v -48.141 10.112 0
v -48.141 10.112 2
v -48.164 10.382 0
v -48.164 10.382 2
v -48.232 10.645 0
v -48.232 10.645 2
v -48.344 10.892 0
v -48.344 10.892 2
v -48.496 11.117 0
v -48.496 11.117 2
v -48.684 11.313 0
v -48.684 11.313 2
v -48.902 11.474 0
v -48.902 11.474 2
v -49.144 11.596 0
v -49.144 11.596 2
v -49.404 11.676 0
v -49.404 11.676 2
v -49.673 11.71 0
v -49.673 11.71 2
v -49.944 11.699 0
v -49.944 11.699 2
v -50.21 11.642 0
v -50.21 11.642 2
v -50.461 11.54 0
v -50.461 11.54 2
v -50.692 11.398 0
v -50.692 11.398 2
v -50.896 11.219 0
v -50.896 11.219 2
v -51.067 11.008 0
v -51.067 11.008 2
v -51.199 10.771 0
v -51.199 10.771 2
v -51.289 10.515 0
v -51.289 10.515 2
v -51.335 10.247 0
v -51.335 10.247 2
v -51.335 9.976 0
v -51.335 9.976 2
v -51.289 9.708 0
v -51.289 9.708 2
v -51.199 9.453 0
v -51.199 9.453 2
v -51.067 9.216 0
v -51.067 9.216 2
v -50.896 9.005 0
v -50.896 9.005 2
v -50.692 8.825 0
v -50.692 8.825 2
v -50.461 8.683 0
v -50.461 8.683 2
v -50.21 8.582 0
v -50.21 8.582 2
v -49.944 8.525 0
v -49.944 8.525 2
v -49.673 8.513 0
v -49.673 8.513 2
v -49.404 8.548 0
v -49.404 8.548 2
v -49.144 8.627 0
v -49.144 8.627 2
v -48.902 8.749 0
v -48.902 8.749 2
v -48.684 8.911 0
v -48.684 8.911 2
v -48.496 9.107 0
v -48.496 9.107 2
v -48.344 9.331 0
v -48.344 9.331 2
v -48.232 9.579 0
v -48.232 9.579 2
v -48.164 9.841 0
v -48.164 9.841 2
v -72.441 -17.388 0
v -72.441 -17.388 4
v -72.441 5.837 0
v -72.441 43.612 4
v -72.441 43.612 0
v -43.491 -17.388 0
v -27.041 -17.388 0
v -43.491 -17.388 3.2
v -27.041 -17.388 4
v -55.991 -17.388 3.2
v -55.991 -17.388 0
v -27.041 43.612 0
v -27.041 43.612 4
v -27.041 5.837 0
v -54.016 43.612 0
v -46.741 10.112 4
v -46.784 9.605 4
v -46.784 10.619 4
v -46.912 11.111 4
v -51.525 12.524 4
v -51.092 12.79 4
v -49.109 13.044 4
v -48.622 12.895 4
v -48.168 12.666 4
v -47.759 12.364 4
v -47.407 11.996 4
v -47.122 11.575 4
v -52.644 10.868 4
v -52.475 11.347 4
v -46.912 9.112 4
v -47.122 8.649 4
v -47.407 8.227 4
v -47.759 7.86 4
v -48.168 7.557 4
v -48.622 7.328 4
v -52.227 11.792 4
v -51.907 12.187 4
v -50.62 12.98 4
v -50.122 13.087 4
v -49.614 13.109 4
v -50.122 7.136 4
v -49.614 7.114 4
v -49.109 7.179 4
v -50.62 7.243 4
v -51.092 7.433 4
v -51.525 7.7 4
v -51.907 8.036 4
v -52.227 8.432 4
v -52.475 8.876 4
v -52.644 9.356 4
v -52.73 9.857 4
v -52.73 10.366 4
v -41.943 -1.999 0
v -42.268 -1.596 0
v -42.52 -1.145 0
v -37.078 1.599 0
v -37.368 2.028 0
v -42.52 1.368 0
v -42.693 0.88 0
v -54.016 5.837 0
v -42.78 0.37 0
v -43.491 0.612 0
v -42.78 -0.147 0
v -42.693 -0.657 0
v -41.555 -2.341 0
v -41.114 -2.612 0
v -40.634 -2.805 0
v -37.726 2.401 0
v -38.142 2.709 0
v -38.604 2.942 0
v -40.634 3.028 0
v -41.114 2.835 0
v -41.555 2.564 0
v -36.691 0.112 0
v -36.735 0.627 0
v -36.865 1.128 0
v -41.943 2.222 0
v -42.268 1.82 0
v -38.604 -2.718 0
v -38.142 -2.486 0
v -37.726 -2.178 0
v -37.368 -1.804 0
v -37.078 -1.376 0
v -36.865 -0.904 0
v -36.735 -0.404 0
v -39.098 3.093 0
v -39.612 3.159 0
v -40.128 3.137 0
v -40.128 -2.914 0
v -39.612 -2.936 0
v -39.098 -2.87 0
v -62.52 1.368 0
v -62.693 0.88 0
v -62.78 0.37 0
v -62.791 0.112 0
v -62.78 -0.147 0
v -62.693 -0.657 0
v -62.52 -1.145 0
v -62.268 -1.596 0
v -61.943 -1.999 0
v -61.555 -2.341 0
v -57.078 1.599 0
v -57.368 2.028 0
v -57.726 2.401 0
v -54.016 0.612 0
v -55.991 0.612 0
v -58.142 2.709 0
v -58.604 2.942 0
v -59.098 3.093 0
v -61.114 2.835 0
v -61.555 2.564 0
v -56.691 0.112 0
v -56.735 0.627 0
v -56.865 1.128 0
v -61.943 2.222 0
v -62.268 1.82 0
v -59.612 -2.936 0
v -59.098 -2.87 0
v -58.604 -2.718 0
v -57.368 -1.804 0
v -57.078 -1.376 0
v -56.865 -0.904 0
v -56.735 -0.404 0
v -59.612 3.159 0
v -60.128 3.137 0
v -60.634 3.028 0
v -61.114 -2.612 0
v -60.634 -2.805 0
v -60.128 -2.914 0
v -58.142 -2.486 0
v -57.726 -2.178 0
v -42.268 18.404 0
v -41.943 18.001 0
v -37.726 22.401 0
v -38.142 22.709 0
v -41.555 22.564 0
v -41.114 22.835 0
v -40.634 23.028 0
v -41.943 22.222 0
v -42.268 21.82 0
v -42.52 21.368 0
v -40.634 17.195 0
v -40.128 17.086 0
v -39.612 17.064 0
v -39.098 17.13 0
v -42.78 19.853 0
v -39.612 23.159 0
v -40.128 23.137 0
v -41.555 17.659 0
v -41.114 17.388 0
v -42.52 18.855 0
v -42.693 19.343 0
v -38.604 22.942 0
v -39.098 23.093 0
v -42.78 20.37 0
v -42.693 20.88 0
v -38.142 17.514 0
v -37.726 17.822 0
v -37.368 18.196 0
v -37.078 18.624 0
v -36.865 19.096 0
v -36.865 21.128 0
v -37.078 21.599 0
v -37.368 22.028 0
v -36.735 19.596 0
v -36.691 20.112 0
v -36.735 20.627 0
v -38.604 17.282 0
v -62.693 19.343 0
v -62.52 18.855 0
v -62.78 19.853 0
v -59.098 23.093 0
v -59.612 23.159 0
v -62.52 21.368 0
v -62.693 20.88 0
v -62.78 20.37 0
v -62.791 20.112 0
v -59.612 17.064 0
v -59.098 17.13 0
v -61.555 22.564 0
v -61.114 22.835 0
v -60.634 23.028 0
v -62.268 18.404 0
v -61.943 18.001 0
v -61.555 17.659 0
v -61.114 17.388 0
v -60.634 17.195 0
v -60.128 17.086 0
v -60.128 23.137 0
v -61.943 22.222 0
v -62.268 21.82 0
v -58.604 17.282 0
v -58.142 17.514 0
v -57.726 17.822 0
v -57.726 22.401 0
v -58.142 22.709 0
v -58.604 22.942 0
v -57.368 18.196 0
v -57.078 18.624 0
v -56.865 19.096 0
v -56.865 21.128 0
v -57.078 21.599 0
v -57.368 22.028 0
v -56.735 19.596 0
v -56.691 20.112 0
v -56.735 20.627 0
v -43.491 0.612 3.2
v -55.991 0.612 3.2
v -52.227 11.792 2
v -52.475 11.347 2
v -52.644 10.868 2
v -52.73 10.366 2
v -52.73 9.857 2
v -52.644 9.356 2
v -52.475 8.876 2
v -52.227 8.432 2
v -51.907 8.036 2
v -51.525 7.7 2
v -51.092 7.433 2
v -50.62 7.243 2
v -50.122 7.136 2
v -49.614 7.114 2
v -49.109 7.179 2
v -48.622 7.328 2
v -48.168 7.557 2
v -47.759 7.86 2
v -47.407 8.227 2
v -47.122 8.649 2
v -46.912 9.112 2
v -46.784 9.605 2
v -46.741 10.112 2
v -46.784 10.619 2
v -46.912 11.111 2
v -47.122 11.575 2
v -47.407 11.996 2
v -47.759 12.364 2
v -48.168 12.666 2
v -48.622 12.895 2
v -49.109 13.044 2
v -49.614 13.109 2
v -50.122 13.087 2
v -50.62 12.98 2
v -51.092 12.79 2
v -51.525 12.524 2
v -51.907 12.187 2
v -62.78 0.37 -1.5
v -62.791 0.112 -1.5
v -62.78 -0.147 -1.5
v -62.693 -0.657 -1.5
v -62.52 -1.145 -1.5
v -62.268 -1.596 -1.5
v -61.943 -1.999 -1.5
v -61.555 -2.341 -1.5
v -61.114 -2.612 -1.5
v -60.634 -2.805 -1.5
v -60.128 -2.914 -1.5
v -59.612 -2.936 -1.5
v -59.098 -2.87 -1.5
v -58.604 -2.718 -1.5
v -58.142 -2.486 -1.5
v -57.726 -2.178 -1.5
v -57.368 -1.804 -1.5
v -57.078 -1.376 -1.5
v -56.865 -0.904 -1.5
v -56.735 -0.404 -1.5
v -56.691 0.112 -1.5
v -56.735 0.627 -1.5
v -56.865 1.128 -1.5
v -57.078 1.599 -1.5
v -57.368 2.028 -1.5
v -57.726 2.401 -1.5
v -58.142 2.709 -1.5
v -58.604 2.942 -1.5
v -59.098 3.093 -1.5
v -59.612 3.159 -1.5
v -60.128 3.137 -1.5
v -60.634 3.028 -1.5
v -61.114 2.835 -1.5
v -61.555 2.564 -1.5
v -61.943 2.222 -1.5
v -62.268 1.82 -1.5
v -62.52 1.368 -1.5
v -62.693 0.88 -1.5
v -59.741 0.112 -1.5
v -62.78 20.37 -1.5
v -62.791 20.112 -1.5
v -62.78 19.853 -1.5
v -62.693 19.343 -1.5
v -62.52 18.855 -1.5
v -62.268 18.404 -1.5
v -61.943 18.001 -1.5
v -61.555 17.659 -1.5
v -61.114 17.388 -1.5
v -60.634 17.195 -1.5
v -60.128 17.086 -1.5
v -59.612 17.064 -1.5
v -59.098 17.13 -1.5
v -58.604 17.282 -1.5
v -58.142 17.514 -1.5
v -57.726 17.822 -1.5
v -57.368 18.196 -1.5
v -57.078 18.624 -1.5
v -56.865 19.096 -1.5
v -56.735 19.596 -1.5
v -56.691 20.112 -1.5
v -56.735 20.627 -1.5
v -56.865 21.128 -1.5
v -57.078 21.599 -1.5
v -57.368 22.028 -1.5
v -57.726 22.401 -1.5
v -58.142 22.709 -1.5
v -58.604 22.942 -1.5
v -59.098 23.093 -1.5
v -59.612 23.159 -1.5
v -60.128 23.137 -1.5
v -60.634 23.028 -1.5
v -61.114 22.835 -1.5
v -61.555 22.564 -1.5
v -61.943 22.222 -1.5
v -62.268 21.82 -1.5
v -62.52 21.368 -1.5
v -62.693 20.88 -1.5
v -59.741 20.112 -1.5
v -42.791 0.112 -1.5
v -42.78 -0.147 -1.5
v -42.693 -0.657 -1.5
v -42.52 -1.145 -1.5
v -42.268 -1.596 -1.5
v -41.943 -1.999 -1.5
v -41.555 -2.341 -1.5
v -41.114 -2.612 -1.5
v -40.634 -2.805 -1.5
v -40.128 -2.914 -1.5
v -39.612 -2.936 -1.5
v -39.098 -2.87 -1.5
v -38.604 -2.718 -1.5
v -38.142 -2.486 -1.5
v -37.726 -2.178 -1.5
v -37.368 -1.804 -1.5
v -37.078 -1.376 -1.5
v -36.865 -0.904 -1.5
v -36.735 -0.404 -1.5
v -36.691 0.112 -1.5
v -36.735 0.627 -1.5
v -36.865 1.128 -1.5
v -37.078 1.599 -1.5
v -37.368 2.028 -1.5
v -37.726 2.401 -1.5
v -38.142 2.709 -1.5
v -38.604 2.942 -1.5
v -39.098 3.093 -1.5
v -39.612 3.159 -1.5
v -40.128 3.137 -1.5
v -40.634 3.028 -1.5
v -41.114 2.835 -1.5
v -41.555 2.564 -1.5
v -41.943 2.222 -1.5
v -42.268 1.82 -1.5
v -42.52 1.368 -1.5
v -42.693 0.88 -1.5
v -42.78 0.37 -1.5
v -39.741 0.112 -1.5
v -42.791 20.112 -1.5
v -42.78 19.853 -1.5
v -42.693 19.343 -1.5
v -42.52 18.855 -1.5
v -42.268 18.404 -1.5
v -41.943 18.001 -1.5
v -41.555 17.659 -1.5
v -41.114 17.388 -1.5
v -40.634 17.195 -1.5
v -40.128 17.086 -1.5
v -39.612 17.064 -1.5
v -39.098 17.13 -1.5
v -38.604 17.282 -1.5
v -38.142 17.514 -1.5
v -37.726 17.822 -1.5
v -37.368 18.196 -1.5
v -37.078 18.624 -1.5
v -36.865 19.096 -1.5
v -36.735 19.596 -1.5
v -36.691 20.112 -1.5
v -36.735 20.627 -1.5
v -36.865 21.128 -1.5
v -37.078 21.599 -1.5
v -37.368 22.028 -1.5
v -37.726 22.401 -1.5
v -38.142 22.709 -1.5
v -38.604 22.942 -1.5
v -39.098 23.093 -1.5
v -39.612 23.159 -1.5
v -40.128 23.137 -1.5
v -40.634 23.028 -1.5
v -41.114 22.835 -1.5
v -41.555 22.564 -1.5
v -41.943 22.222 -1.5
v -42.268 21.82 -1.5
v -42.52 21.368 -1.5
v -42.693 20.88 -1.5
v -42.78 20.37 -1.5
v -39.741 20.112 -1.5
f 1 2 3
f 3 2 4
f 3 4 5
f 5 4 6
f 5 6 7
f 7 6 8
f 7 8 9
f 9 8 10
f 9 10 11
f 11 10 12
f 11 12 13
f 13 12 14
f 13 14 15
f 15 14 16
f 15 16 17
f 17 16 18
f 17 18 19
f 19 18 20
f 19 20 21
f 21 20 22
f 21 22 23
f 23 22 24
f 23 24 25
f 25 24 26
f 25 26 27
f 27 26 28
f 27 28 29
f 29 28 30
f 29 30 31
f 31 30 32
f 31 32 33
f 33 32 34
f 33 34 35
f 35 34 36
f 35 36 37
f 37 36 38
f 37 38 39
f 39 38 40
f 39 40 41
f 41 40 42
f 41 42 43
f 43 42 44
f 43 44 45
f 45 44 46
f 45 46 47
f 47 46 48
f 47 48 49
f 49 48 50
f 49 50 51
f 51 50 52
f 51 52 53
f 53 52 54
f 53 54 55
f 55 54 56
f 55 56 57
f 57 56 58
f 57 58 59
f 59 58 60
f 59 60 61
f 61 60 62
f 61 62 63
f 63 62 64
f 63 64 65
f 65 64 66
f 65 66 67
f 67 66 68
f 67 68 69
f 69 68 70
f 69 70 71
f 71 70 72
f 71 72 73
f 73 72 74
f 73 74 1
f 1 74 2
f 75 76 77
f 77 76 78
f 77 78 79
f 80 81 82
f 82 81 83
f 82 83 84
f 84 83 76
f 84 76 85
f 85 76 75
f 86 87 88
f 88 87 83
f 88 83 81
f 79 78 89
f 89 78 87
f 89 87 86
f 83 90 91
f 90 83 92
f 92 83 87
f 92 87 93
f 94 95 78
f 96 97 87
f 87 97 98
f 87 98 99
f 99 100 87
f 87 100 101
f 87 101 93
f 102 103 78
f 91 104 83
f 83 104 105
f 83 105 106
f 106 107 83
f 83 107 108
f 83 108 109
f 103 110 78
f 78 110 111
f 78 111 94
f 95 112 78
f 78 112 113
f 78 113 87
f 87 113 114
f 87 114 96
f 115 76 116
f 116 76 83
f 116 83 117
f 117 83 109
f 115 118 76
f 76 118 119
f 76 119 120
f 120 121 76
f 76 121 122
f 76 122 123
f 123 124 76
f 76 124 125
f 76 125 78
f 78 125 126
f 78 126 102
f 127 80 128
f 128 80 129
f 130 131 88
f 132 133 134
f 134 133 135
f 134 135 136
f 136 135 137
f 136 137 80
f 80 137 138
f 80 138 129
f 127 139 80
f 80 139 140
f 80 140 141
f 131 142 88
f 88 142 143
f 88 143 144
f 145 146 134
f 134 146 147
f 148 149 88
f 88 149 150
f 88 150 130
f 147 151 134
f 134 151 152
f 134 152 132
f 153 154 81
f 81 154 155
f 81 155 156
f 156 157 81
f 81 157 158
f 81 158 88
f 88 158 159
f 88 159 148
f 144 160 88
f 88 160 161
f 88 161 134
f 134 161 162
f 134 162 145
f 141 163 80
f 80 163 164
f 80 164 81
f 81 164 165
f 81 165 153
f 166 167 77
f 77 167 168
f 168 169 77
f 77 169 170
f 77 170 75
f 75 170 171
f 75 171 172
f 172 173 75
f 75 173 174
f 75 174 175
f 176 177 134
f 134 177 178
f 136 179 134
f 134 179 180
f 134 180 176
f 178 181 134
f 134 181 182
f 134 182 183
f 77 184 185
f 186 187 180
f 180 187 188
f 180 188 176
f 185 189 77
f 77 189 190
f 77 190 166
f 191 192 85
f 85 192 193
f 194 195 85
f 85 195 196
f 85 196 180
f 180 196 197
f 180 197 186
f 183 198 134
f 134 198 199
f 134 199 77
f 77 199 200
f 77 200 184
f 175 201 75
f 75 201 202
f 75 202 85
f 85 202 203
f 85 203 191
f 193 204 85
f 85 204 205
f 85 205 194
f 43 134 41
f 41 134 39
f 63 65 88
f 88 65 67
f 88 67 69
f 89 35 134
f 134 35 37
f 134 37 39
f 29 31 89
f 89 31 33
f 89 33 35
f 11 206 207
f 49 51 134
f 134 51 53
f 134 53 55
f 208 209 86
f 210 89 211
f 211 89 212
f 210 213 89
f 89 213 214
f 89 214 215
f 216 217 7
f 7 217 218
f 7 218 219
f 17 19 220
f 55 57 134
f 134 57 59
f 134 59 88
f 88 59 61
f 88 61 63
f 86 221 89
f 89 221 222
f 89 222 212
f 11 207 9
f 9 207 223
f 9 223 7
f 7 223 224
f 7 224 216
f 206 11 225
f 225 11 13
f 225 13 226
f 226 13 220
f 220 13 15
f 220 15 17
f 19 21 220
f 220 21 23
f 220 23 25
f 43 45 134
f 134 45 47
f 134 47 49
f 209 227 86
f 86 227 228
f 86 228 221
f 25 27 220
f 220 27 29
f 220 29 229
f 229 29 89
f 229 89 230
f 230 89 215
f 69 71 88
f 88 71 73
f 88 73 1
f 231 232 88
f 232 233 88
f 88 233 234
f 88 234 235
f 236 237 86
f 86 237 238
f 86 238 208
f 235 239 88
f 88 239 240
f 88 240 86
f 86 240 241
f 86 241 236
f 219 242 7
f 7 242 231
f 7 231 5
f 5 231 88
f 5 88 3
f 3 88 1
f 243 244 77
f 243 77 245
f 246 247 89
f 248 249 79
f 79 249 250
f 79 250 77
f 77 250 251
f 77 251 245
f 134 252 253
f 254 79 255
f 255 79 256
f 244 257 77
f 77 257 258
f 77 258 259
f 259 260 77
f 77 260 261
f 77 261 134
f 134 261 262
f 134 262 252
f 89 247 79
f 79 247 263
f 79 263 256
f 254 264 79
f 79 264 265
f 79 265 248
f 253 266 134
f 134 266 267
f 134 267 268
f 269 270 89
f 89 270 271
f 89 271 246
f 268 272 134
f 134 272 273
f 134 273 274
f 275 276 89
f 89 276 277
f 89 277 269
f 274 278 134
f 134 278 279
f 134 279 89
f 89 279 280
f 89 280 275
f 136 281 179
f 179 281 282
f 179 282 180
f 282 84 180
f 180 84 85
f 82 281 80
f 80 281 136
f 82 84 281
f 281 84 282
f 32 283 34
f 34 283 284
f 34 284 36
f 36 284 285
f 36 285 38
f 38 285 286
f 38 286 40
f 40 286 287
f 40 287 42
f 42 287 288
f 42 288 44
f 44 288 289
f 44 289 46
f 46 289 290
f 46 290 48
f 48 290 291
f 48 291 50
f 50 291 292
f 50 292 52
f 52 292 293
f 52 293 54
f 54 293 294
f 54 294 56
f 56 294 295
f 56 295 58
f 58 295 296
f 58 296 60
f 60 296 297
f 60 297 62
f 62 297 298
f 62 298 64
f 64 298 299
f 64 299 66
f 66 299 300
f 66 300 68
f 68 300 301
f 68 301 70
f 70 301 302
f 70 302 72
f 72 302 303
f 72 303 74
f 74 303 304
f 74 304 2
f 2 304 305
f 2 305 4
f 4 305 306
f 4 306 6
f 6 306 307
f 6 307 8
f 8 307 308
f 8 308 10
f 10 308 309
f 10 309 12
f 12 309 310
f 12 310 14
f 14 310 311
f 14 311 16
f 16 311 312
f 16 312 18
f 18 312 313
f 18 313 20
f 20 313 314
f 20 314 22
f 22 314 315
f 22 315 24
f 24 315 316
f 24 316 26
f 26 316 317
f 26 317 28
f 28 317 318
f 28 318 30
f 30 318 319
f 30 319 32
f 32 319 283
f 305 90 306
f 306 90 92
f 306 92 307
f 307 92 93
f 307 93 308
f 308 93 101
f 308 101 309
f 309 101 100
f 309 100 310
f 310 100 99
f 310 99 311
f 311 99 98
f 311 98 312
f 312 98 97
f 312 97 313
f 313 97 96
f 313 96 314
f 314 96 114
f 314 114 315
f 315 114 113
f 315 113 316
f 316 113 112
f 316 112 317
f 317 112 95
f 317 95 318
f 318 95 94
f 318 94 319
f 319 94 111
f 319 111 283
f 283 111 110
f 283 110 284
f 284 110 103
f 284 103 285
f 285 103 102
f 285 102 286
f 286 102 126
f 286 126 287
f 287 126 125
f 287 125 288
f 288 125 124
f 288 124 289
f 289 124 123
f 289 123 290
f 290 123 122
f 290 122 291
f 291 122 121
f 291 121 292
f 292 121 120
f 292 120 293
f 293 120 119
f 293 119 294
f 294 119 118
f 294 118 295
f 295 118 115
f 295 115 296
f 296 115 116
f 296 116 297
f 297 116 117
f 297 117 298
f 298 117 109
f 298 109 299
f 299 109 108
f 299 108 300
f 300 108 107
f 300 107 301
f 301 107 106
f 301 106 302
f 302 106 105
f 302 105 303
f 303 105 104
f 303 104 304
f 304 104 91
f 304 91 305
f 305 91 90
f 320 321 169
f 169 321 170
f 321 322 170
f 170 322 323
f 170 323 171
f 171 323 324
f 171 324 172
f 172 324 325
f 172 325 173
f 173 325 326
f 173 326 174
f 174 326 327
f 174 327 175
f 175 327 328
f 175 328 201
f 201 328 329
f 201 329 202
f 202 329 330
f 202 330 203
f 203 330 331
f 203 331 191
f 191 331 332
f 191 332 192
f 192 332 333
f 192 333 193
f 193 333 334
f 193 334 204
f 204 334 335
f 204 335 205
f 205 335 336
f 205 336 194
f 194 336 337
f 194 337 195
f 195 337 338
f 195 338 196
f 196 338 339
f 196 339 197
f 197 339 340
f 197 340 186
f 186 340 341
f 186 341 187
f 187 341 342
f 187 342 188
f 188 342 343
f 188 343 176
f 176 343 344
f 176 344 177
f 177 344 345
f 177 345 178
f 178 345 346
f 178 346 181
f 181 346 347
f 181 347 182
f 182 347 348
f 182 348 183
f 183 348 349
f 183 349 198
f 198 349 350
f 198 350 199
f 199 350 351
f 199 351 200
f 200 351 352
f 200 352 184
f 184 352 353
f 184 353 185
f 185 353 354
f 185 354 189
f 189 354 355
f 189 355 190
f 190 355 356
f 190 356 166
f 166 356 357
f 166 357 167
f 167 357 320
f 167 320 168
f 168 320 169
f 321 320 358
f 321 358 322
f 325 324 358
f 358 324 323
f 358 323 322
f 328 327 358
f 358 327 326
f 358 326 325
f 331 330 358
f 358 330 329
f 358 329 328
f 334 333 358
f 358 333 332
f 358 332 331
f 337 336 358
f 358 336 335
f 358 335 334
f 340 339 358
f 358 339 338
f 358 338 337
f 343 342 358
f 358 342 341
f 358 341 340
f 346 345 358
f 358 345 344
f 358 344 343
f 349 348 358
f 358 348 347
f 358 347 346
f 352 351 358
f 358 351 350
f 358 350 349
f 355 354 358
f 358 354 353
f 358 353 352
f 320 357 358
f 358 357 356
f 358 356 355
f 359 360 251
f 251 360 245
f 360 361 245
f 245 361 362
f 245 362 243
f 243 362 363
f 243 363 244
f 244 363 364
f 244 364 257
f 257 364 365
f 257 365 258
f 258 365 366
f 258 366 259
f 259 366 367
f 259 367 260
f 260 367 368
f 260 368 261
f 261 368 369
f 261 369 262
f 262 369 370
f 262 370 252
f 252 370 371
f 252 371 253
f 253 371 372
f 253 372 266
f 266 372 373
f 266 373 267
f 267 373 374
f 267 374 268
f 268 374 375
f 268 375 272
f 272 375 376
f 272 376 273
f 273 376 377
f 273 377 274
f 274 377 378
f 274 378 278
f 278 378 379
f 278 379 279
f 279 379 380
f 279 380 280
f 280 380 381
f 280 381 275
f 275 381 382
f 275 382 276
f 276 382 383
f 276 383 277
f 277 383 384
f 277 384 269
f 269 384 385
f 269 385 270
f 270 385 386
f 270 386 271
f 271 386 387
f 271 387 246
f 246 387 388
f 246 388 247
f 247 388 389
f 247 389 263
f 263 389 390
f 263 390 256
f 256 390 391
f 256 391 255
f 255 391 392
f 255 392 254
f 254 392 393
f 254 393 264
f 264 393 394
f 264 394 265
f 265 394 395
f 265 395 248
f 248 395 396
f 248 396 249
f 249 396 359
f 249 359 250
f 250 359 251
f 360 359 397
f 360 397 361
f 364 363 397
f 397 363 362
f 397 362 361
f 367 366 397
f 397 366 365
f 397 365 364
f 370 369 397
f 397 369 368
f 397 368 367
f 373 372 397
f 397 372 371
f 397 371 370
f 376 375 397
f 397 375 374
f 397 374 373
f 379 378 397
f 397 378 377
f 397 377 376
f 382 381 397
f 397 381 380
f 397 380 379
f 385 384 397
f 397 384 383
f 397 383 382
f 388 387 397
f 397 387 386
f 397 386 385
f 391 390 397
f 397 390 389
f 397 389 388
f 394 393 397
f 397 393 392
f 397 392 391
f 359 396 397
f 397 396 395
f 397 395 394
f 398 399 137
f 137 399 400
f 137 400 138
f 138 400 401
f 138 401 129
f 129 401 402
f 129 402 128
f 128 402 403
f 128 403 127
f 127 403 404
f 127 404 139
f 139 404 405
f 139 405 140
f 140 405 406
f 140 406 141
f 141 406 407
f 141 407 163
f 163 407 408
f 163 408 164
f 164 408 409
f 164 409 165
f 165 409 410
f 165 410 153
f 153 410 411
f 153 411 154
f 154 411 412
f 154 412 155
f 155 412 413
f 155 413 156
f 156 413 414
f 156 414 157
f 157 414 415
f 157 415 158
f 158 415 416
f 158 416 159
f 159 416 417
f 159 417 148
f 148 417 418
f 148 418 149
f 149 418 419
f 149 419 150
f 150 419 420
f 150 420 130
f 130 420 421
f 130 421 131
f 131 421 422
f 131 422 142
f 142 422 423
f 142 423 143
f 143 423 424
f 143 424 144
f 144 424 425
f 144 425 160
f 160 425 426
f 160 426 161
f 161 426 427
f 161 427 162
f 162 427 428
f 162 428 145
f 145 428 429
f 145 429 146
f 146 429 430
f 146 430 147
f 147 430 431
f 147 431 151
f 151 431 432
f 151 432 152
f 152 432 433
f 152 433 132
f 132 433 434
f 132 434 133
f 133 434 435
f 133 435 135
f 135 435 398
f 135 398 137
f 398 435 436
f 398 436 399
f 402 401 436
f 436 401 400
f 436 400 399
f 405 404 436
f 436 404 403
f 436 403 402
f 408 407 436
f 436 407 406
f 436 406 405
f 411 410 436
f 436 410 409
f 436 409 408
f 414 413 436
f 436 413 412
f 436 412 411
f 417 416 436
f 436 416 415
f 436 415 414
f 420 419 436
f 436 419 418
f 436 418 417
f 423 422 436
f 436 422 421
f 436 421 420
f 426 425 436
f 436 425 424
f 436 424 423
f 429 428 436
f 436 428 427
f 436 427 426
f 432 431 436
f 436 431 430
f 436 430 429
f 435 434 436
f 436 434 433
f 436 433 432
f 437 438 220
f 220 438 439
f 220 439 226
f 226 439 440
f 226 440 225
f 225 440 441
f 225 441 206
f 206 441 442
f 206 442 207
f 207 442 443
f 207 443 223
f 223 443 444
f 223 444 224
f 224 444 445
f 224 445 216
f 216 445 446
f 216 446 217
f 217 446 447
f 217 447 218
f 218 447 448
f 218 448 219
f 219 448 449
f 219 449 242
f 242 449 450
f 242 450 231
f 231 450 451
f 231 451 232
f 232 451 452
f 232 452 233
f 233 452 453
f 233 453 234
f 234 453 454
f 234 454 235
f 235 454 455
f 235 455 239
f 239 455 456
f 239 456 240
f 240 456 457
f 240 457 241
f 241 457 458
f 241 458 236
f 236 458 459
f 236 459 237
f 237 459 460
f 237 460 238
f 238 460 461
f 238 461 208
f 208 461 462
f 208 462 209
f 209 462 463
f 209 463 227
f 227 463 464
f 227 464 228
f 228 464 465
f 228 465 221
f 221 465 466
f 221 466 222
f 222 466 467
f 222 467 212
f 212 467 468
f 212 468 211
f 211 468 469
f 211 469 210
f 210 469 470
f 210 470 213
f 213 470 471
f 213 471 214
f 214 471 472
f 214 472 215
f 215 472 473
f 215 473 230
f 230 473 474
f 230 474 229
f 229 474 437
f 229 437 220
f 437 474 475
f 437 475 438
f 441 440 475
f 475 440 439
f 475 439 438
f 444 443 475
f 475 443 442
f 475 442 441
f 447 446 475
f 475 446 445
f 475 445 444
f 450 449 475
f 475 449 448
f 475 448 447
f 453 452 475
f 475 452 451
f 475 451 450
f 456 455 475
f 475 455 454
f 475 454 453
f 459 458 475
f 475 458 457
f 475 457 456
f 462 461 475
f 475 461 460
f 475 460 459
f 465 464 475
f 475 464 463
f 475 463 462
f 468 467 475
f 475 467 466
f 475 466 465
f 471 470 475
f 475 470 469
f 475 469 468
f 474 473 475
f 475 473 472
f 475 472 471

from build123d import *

# Parameters (mm, degrees)
SKETCH_1_W          = 45.4
SKETCH_1_H          = 61
EXTRUDE_1_DEPTH     = 4
SKETCH_2_W          = 12.5
SKETCH_2_H          = 18
CUT_EXTRUDE_1_DEPTH = 3.2
SKETCH_4_R          = 1.6
CUT_EXTRUDE_2_DEPTH = 10
SKETCH_5_R          = 3
CUT_EXTRUDE_3_DEPTH = 2
SKETCH_3_R          = 3.05
EXTRUDE_2_DEPTH     = 1.5


with BuildPart() as part:
    # 草图1 → 凸台-拉伸1 (new body)
    with BuildSketch(Plane.XY):
        with Locations((-49.741035857, 13.111663348)):
            Rectangle(SKETCH_1_W, SKETCH_1_H)
    extrude(amount=EXTRUDE_1_DEPTH)

    # 草图2 → 切除-拉伸1 (cut)
    with BuildSketch(Plane(origin=(0, 0, 0), x_dir=(-1, 0, 0), z_dir=(0, 0, -1))):
        with Locations((49.741035857, -8.388336652)):
            Rectangle(SKETCH_2_W, SKETCH_2_H)
    extrude(amount=-CUT_EXTRUDE_1_DEPTH, mode=Mode.SUBTRACT)

    # 草图4 → 切除-拉伸2 (cut)
    with BuildSketch(Plane.XY.offset(4)):
        with Locations((-49.741035857, 10.111663348)):
            Circle(SKETCH_4_R)
    extrude(amount=-CUT_EXTRUDE_2_DEPTH, mode=Mode.SUBTRACT)

    # 草图5 → 切除-拉伸3 (cut)
    with BuildSketch(Plane.XY.offset(4)):
        with Locations((-49.741035857, 10.111663348)):
            Circle(SKETCH_5_R)
    extrude(amount=-CUT_EXTRUDE_3_DEPTH, mode=Mode.SUBTRACT)

    # 草图3 → 凸台-拉伸2 (add)
    with BuildSketch(Plane(origin=(0, 0, 0), x_dir=(-1, 0, 0), z_dir=(0, 0, -1))):
        with Locations(Location((39.741035857, 0.111663348, 0), (0, 0, 180))):
            Circle(SKETCH_3_R)
        with Locations(Location((39.741035857, 20.111663348, 0), (0, 0, 180))):
            Circle(SKETCH_3_R)
        with Locations((59.741035857, 0.111663348)):
            Circle(SKETCH_3_R)
        with Locations((59.741035857, 20.111663348)):
            Circle(SKETCH_3_R)
    extrude(amount=EXTRUDE_2_DEPTH)


solid = part.part
